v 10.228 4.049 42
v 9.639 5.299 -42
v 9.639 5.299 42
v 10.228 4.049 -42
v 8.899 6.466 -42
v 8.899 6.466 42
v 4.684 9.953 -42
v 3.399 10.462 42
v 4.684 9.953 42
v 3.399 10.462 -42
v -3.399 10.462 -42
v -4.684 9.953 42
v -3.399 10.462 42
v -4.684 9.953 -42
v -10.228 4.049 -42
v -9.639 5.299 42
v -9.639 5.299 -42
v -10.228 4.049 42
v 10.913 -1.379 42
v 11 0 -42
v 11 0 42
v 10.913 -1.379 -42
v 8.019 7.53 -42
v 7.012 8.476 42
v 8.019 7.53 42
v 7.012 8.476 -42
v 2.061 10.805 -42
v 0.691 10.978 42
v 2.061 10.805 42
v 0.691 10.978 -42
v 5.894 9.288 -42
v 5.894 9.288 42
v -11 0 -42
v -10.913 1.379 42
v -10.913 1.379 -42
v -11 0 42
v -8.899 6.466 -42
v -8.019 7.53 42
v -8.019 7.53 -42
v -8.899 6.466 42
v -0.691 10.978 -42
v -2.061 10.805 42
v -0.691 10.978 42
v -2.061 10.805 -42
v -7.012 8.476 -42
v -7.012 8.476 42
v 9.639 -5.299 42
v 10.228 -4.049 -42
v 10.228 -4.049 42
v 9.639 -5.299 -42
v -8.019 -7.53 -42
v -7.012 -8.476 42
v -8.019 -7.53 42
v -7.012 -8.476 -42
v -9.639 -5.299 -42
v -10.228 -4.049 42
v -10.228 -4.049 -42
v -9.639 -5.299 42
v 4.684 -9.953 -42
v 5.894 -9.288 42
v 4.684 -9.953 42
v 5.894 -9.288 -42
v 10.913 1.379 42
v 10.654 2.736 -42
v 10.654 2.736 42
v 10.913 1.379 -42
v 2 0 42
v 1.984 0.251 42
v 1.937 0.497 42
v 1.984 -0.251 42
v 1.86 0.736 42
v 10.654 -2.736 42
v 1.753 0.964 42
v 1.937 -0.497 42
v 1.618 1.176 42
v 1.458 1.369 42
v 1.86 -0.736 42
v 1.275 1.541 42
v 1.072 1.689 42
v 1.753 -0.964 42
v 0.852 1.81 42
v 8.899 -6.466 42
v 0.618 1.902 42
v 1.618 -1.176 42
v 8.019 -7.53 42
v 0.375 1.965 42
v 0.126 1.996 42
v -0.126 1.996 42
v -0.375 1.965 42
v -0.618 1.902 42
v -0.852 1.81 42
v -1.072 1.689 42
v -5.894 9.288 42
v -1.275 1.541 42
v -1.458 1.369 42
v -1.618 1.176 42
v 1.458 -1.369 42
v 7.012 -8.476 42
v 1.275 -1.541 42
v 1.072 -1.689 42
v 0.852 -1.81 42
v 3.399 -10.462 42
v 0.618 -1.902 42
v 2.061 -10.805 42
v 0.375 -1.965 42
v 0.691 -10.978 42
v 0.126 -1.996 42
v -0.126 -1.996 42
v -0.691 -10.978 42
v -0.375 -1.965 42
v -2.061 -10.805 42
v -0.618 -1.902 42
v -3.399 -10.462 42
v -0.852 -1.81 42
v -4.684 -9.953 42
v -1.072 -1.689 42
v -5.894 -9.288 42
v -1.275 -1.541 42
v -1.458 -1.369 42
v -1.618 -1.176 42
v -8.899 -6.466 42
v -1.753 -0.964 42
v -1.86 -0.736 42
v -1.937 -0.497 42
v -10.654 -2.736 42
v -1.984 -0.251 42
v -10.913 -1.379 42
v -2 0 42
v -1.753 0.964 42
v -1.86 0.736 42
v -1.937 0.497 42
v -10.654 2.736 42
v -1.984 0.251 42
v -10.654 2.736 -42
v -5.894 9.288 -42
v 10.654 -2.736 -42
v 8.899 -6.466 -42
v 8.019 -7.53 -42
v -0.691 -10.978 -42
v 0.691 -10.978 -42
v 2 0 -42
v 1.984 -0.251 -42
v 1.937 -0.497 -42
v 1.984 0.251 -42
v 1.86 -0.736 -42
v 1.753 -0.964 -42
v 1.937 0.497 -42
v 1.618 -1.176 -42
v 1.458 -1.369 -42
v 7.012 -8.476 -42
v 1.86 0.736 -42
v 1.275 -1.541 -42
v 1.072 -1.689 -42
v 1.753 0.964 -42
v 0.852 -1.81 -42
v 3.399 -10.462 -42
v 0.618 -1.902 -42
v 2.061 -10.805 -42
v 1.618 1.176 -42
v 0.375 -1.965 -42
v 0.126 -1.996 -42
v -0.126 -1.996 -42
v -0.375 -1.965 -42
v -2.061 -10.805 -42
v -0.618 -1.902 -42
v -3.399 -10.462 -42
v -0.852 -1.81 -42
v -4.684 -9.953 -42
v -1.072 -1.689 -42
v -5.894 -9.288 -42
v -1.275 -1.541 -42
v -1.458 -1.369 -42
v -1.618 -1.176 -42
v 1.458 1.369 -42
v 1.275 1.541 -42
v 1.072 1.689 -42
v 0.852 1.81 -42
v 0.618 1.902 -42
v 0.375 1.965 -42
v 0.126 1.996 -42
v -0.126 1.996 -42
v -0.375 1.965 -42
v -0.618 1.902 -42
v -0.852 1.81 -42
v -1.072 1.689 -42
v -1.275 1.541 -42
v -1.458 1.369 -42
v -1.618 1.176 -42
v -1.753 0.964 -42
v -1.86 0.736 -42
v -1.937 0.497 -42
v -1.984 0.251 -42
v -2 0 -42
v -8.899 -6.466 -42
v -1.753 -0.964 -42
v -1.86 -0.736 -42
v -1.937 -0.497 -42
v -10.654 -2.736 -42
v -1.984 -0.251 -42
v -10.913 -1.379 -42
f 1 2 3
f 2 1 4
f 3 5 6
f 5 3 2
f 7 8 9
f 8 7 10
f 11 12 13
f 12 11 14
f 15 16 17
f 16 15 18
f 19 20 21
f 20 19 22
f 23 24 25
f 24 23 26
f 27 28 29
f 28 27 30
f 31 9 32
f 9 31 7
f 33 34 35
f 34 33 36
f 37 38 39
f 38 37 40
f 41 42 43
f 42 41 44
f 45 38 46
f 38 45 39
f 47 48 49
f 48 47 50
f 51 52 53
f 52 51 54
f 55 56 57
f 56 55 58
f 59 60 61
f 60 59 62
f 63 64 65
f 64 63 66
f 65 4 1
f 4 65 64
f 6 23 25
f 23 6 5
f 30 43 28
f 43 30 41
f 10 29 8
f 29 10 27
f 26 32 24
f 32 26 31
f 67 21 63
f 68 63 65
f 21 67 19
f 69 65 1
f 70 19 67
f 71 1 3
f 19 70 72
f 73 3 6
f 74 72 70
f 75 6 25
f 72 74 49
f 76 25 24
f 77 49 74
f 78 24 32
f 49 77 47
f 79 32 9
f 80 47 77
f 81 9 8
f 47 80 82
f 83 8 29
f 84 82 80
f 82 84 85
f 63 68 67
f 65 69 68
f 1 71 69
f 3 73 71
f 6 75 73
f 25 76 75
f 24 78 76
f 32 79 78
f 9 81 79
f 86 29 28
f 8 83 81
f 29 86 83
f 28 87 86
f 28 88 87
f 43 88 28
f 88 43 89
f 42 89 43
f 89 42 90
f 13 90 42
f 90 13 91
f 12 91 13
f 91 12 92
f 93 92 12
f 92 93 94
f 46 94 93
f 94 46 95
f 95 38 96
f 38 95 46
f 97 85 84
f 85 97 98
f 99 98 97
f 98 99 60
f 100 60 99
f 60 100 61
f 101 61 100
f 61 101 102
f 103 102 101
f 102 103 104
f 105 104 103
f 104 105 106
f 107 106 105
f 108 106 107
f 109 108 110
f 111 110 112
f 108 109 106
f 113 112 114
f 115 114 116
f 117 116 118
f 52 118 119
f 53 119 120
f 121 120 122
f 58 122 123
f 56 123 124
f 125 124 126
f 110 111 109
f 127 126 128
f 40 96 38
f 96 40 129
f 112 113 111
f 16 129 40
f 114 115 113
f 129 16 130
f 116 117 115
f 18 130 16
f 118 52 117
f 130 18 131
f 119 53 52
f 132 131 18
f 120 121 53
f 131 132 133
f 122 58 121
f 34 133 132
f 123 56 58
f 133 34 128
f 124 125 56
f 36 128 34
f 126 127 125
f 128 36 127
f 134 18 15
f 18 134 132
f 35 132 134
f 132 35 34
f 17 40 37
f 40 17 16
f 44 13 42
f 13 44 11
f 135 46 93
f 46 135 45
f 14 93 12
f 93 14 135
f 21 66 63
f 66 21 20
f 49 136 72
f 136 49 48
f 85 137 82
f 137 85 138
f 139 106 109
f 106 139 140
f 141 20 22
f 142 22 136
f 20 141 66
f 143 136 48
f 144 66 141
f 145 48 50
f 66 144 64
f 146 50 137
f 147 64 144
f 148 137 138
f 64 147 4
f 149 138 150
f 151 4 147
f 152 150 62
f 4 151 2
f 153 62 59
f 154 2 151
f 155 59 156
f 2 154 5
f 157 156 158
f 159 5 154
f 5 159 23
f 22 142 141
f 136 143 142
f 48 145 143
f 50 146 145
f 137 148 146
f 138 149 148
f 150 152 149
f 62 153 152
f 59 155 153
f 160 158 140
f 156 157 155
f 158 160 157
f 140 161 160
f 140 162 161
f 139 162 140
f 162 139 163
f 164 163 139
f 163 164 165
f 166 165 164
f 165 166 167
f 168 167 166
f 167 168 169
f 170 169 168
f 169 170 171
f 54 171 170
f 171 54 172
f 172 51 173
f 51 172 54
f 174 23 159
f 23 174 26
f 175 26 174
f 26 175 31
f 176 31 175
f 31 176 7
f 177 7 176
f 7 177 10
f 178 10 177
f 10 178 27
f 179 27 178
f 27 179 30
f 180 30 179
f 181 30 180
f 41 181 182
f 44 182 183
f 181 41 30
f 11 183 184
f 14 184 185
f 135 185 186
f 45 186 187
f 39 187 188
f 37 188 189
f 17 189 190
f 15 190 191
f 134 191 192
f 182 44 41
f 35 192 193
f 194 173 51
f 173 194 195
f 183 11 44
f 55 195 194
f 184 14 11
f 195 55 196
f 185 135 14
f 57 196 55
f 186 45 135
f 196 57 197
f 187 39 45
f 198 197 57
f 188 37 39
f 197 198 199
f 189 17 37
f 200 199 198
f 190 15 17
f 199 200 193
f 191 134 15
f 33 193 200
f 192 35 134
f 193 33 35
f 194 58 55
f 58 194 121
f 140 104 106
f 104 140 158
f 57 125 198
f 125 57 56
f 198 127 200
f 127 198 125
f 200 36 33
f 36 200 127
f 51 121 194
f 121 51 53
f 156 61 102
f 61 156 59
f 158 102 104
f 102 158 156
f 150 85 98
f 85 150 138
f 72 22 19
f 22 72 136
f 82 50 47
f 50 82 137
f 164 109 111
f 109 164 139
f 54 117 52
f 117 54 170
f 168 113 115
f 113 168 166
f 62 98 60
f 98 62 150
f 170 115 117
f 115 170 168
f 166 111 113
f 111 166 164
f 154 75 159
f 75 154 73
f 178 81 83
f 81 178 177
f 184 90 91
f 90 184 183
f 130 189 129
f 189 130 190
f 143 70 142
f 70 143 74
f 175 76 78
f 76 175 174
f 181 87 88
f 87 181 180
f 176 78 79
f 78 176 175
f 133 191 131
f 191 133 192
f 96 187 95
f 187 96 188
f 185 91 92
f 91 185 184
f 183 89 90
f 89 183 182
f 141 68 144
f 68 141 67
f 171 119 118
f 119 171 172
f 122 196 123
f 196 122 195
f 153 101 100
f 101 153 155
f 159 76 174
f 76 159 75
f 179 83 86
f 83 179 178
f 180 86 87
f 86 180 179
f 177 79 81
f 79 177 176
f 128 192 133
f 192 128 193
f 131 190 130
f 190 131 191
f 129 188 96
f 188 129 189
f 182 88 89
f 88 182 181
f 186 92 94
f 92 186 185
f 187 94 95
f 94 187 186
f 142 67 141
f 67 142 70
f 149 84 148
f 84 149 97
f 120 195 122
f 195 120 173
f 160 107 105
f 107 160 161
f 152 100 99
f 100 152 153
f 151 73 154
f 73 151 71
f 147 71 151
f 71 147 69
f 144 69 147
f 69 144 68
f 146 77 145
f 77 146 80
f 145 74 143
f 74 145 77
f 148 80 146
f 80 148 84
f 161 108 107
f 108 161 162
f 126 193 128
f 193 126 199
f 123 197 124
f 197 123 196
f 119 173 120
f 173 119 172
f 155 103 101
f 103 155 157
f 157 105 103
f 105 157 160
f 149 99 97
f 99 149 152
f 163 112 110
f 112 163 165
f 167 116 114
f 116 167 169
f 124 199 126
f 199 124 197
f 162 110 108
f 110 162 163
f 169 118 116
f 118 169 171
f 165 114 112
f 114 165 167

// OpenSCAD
$fn = 50;


difference() {
	union() {
		translate(v = [0, 0, -42.0000000000]) {
			cylinder(h = 84, r = 11.0000000000);
		}
	}
	union() {
		translate(v = [0, 0, -100.0000000000]) {
			cylinder(h = 200, r = 2);
		}
	}
}
